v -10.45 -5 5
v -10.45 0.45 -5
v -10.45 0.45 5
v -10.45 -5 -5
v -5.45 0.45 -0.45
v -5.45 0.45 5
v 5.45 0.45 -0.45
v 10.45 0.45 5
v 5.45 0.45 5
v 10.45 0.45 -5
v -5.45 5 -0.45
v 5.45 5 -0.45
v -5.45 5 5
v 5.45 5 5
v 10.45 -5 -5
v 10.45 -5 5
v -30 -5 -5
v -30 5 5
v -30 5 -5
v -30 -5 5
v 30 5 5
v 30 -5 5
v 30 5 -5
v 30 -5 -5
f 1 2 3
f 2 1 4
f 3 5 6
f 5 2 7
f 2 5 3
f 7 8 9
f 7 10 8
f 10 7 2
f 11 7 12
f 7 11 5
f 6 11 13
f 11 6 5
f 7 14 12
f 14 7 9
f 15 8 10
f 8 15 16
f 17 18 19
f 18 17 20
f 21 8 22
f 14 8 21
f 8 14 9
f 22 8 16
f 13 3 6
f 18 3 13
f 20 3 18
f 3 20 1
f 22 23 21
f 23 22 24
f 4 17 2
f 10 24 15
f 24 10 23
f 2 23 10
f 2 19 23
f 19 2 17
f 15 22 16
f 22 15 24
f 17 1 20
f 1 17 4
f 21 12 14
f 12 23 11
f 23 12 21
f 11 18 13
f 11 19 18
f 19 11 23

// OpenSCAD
Unit=5;
Slack=0.9;
Laengde=12*Unit;
Bredde=2*Unit;
Pindnr=2;
list = [[0,1,2,0,0,0,0,0],
        [1,2,2,1,1,1,1,1],
        [2,1,1,2,0,1,1,0],
        [0,2,1,0,0,1,1,0],
        [2,1,2,2,0,0,1,0],
        [1,2,2,1,1,1,0,0]];


difference(){
pind();
translate([-2*Unit-Slack/2,-Slack/2,-Slack/2])
cut();
}


module cut(){
    for (i = [0:3]) {
        if (list[Pindnr-1][i]!=0) {
            translate([(i)*Unit,-Unit,0])
            cube([Unit+Slack,list[Pindnr-1][i]*Unit+Slack,Unit+Slack],center=false);
        }
    }
    for (i = [4:7]) {
        if (list[Pindnr-1][i]!=0) {
            translate([(i-4)*Unit,-Unit,-Unit])
            cube([Unit+Slack,list[Pindnr-1][i]*Unit+Slack,Unit+Slack],center=false);
        }
    }
}
module pind(){
cube([Laengde,Bredde,Bredde], center = true);
} 
